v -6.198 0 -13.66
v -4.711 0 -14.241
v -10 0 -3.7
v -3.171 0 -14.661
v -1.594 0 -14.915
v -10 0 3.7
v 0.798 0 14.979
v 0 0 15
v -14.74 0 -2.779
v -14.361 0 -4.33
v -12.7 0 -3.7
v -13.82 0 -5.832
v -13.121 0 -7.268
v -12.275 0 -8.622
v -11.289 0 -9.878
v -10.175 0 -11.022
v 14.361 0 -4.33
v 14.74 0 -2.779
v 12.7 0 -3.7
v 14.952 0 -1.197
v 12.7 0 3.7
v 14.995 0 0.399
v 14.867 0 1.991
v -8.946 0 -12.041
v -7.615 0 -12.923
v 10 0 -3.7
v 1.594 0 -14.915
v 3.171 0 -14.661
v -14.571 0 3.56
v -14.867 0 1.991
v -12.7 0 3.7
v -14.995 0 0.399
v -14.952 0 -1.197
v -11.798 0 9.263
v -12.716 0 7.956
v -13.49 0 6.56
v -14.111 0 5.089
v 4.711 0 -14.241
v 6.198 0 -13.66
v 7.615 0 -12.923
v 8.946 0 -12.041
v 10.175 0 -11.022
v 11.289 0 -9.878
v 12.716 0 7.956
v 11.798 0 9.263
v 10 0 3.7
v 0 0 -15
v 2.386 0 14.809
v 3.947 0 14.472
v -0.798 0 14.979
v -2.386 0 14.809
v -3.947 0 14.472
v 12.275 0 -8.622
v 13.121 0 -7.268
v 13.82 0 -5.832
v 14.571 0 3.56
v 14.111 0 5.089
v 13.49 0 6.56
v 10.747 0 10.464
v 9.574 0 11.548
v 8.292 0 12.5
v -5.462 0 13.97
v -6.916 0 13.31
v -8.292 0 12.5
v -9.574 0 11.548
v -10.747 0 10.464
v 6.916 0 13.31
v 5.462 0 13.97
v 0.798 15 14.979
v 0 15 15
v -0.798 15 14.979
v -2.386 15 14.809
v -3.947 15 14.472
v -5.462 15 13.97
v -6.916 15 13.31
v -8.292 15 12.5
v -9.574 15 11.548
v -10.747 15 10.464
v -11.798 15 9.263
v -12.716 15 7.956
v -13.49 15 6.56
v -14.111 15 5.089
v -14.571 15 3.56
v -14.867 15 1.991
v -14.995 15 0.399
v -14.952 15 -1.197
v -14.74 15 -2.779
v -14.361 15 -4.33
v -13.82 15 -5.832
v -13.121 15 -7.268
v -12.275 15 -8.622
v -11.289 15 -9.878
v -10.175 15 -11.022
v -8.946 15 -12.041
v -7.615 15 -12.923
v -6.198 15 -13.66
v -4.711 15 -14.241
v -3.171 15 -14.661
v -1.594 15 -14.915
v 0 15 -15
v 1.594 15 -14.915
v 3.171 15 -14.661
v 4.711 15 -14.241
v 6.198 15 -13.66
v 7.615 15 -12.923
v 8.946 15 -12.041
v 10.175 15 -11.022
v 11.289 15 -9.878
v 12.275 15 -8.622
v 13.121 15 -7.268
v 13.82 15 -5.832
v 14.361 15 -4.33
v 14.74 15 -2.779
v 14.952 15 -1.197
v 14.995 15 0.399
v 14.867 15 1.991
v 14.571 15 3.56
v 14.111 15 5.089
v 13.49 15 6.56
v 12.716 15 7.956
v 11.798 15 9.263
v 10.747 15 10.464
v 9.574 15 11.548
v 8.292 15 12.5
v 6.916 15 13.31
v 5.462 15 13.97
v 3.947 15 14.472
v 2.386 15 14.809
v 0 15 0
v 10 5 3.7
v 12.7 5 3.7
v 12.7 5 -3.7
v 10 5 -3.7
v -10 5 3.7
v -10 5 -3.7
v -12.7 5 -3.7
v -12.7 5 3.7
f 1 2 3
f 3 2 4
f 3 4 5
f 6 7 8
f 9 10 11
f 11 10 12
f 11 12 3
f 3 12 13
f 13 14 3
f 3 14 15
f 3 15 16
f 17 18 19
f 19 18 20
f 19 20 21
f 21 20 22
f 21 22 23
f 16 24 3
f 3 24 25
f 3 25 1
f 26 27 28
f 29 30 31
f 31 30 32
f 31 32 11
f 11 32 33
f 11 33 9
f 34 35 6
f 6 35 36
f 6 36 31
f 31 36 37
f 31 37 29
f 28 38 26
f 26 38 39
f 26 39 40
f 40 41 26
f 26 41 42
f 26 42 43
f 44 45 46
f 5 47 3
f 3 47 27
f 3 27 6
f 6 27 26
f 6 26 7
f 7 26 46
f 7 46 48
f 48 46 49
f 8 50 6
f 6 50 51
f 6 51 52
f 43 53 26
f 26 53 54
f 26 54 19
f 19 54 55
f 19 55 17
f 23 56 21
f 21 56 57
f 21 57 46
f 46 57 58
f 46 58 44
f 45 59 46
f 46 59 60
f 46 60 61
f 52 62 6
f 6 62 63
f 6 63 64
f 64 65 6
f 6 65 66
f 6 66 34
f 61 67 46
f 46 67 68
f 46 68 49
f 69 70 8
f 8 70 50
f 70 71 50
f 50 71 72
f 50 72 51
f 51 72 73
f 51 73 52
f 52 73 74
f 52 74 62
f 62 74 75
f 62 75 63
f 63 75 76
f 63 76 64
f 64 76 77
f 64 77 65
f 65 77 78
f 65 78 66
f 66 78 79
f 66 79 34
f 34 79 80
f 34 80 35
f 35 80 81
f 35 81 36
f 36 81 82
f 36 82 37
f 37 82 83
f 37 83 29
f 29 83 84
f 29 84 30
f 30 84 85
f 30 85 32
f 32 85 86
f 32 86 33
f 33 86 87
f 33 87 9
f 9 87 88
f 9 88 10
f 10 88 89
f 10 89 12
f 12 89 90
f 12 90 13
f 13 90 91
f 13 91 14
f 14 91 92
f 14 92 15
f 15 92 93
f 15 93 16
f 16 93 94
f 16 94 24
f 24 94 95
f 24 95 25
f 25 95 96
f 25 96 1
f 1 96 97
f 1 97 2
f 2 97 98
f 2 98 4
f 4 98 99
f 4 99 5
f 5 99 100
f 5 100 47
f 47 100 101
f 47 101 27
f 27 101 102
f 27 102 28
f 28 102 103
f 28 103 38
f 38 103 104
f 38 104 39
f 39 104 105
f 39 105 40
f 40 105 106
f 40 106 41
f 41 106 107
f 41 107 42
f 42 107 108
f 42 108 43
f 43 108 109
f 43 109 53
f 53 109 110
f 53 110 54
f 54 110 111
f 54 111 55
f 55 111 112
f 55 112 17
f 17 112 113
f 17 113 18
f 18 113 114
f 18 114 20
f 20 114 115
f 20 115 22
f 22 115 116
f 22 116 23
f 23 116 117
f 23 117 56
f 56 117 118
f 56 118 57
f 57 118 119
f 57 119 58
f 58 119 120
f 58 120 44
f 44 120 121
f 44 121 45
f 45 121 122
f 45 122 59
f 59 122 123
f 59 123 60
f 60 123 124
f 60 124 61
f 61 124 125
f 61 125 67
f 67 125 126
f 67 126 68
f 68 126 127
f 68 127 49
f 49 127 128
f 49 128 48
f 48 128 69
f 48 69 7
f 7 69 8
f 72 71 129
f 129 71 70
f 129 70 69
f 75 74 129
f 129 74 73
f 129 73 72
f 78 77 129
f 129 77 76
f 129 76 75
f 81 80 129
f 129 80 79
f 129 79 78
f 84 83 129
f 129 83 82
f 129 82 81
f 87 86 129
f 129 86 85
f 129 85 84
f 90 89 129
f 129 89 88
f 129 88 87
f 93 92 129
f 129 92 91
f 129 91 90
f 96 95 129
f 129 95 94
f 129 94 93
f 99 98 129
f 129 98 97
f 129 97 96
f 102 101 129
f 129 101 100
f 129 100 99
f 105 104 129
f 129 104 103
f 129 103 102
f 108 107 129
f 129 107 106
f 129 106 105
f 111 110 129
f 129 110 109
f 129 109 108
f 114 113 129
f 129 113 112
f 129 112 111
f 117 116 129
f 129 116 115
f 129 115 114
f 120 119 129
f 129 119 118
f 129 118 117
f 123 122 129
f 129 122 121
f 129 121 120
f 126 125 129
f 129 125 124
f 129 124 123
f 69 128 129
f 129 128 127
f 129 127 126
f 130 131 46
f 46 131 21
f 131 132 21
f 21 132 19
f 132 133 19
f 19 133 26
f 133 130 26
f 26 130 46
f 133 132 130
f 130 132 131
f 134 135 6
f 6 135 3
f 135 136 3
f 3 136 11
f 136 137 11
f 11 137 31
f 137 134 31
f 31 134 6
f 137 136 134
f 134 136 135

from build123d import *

# Parameters (mm, degrees)
SKETCH1_R           = 15
BOSS_EXTRUDE1_DEPTH = 15
SKETCH2_W           = 2.7
SKETCH2_H           = 7.4
CUT_EXTRUDE1_DEPTH  = 5


with BuildPart() as part:
    # Sketch1 → Boss-Extrude1 (new body)
    with BuildSketch(Plane(origin=(0, 0, 0), x_dir=(1, 0, 0), z_dir=(0, 1, 0))):
        Circle(SKETCH1_R)
    extrude(amount=BOSS_EXTRUDE1_DEPTH)

    # Sketch2 → Cut-Extrude1 (cut)
    with BuildSketch(Plane.XZ):
        with Locations((-11.35, 0)):
            Rectangle(SKETCH2_W, SKETCH2_H)
        with Locations((11.35, 0)):
            Rectangle(SKETCH2_W, SKETCH2_H)
    extrude(amount=-CUT_EXTRUDE1_DEPTH, mode=Mode.SUBTRACT)


solid = part.part
